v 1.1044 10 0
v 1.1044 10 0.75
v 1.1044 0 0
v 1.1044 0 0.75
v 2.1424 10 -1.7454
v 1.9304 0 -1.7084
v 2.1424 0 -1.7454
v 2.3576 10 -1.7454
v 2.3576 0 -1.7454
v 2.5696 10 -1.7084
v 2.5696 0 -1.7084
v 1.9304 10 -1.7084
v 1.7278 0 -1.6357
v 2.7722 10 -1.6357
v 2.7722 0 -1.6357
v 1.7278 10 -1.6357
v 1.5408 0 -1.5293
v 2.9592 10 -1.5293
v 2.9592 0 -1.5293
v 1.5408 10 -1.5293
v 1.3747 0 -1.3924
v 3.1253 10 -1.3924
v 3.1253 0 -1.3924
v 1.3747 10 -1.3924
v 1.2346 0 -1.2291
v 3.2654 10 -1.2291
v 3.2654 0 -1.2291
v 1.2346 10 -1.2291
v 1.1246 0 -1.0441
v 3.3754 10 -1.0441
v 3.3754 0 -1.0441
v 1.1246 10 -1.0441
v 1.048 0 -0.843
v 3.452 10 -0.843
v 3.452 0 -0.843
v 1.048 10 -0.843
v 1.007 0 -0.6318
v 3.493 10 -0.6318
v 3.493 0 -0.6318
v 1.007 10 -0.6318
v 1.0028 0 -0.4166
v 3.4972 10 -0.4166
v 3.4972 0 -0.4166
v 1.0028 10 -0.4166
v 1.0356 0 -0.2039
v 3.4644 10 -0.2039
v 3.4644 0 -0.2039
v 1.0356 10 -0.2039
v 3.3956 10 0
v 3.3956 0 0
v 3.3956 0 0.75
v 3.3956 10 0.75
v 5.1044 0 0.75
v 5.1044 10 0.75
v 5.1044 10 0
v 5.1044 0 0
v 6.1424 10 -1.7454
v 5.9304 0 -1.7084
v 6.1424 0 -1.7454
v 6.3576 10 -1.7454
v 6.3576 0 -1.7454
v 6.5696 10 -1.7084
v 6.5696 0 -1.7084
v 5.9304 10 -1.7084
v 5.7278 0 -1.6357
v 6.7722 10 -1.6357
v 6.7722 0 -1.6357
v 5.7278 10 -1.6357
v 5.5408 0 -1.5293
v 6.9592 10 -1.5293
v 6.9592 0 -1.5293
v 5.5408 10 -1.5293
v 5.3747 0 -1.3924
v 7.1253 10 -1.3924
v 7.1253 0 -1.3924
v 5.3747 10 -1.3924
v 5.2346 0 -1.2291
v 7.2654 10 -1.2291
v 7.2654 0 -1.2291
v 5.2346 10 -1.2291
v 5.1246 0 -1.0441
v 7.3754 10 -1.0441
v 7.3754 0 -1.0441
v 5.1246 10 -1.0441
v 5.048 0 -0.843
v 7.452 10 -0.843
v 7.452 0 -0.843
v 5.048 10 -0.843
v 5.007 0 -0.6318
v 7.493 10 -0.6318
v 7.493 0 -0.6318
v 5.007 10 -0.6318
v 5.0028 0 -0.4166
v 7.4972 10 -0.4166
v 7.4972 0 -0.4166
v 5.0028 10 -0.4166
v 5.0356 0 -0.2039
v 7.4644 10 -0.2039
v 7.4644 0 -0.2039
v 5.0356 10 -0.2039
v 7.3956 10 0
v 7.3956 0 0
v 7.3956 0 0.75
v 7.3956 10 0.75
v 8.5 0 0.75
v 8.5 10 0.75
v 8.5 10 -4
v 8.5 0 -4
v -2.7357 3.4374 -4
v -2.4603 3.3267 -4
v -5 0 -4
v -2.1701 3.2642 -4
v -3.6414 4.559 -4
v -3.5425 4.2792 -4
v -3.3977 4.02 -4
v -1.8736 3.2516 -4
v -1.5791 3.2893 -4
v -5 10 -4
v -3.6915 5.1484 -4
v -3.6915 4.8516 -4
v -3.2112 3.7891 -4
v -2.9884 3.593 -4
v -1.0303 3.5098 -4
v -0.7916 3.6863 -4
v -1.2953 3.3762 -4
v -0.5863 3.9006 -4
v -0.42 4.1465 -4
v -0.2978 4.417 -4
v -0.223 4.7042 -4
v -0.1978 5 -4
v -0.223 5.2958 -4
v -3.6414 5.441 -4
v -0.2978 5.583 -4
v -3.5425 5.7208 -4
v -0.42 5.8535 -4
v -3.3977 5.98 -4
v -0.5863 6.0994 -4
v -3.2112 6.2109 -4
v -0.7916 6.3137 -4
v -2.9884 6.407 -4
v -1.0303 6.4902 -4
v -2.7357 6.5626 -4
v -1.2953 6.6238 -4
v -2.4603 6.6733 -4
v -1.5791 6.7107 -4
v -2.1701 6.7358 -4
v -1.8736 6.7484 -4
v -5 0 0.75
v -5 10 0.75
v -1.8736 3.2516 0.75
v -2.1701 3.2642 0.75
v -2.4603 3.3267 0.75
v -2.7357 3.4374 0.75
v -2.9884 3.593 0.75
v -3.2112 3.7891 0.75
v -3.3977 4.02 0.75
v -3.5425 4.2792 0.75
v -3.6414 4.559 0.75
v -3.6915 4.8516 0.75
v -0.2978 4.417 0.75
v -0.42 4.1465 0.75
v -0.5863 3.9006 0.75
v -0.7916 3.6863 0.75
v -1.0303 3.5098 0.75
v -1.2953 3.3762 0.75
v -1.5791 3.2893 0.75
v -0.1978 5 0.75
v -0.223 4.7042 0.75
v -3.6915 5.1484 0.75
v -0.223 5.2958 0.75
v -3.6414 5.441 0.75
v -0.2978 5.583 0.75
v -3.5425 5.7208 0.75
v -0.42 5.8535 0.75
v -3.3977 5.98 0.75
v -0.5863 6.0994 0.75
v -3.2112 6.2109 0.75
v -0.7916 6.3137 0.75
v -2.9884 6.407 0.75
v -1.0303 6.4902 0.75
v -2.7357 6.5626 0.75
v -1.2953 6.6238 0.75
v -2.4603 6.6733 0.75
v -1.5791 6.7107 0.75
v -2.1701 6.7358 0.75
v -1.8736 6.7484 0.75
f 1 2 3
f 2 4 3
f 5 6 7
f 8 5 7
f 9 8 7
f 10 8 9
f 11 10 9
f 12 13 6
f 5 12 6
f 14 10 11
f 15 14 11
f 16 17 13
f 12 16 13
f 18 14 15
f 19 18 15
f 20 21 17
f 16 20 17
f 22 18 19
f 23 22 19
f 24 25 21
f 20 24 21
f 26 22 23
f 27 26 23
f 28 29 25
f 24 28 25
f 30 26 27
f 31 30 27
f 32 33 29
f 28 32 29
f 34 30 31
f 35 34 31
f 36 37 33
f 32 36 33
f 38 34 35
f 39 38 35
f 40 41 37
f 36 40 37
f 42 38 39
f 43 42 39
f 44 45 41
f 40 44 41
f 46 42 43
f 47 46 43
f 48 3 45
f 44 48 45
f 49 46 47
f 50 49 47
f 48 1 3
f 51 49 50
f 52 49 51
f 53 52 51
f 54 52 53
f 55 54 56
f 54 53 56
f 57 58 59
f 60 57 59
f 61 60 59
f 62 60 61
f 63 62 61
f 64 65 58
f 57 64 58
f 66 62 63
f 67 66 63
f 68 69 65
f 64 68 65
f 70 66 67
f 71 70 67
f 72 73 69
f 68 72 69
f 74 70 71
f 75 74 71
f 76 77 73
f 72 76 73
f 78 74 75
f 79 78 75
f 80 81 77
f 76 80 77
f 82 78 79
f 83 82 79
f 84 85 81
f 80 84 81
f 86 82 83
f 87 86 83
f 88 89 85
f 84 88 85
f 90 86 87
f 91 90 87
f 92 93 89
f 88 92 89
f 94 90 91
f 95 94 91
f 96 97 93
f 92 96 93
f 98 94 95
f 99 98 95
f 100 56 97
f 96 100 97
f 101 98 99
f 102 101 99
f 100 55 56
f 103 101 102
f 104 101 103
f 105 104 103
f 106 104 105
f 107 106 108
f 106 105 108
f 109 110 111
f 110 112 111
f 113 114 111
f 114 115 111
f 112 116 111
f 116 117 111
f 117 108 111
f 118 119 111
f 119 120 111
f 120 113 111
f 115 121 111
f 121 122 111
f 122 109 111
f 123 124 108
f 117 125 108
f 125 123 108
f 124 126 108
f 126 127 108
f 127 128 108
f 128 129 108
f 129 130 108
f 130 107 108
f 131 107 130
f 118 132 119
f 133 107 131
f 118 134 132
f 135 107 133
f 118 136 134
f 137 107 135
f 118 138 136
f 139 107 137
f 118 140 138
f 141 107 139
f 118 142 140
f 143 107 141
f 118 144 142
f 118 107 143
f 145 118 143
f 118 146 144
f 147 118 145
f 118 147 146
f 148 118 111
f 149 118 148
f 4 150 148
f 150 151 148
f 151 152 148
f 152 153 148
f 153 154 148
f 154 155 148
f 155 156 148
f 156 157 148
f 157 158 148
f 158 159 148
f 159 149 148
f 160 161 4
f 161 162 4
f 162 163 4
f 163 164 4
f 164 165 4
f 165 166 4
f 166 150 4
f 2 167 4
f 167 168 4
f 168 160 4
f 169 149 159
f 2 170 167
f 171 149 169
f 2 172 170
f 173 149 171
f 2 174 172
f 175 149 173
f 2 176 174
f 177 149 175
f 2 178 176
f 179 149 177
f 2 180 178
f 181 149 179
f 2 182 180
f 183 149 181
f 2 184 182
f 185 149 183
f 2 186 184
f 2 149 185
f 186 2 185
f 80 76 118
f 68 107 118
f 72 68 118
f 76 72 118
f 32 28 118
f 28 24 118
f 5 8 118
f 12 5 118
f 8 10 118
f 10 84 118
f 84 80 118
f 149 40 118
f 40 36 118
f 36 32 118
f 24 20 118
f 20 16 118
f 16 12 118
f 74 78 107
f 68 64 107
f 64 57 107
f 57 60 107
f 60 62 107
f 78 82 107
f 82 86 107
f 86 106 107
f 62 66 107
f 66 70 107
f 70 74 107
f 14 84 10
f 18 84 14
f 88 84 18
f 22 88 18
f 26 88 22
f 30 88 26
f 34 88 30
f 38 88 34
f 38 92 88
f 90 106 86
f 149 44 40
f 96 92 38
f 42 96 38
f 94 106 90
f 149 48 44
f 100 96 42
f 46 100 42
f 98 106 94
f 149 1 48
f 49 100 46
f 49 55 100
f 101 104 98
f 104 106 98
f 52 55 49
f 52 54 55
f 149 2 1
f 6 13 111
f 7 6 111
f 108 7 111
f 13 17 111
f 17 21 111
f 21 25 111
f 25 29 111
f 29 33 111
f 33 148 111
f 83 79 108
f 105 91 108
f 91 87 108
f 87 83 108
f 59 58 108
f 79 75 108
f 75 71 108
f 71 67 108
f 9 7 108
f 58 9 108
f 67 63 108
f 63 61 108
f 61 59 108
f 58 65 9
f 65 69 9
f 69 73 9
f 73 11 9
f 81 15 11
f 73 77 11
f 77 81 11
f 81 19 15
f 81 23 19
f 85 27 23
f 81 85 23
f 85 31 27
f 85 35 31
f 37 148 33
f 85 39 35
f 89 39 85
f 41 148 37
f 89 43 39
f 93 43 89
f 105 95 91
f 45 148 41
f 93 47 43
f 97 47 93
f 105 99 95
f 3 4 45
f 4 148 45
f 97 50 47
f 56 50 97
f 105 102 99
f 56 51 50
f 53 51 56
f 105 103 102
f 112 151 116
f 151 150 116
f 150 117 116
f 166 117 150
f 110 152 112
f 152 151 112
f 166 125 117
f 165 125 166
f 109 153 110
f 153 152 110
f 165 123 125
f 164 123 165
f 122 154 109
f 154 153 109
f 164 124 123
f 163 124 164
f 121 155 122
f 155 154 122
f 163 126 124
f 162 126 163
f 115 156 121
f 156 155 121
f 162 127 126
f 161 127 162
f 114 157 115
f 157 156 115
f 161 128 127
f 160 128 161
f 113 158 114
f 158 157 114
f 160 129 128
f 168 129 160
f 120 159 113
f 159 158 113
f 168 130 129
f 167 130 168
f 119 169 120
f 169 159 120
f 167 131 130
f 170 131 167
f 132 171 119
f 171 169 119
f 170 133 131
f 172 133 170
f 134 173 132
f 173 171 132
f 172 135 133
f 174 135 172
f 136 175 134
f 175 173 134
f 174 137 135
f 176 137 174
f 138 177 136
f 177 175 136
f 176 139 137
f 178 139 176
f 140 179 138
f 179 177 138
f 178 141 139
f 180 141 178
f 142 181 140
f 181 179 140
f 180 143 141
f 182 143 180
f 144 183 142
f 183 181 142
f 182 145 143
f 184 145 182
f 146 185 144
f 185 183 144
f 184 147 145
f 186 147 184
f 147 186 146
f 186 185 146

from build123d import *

# Parameters (mm, degrees)
BOSS_EXTRUDE1_DEPTH = 10
SKETCH4_R           = 1.75
CUT_EXTRUDE2_DEPTH  = 14.957524852


with BuildPart() as part:
    # Sketch1 → Boss-Extrude1 (new body)
    with BuildSketch(Plane(origin=(0, 0, 0), x_dir=(1, 0, 0), z_dir=(0, 1, 0))):
        with BuildLine():
            Line((8.5, 4), (-5, 4))
            Line((-5, 4), (-5, -0.75))
            Line((-5, -0.75), (1.104356076, -0.75))
            Line((1.104356076, -0.75), (1.104356076, 0))
            ThreePointArc((1.104356076, 0), (2.25, 1.75), (3.395643924, 0))
            Line((3.395643924, 0), (3.395643924, -0.75))
            Line((3.395643924, -0.75), (5.104356076, -0.75))
            Line((5.104356076, -0.75), (5.104356076, 0))
            ThreePointArc((5.104356076, 0), (6.25, 1.75), (7.395643924, 0))
            Line((7.395643924, 0), (7.395643924, -0.75))
            Line((7.395643924, -0.75), (8.5, -0.75))
            Line((8.5, -0.75), (8.5, 4))
        make_face()
    extrude(amount=BOSS_EXTRUDE1_DEPTH)

    # Sketch4 → Cut-Extrude2 (cut, through all)
    with BuildSketch(Plane.XY.offset(0.75)):
        with Locations((-1.947821962, 5)):
            Circle(SKETCH4_R)
    extrude(amount=-CUT_EXTRUDE2_DEPTH, mode=Mode.SUBTRACT)


solid = part.part
